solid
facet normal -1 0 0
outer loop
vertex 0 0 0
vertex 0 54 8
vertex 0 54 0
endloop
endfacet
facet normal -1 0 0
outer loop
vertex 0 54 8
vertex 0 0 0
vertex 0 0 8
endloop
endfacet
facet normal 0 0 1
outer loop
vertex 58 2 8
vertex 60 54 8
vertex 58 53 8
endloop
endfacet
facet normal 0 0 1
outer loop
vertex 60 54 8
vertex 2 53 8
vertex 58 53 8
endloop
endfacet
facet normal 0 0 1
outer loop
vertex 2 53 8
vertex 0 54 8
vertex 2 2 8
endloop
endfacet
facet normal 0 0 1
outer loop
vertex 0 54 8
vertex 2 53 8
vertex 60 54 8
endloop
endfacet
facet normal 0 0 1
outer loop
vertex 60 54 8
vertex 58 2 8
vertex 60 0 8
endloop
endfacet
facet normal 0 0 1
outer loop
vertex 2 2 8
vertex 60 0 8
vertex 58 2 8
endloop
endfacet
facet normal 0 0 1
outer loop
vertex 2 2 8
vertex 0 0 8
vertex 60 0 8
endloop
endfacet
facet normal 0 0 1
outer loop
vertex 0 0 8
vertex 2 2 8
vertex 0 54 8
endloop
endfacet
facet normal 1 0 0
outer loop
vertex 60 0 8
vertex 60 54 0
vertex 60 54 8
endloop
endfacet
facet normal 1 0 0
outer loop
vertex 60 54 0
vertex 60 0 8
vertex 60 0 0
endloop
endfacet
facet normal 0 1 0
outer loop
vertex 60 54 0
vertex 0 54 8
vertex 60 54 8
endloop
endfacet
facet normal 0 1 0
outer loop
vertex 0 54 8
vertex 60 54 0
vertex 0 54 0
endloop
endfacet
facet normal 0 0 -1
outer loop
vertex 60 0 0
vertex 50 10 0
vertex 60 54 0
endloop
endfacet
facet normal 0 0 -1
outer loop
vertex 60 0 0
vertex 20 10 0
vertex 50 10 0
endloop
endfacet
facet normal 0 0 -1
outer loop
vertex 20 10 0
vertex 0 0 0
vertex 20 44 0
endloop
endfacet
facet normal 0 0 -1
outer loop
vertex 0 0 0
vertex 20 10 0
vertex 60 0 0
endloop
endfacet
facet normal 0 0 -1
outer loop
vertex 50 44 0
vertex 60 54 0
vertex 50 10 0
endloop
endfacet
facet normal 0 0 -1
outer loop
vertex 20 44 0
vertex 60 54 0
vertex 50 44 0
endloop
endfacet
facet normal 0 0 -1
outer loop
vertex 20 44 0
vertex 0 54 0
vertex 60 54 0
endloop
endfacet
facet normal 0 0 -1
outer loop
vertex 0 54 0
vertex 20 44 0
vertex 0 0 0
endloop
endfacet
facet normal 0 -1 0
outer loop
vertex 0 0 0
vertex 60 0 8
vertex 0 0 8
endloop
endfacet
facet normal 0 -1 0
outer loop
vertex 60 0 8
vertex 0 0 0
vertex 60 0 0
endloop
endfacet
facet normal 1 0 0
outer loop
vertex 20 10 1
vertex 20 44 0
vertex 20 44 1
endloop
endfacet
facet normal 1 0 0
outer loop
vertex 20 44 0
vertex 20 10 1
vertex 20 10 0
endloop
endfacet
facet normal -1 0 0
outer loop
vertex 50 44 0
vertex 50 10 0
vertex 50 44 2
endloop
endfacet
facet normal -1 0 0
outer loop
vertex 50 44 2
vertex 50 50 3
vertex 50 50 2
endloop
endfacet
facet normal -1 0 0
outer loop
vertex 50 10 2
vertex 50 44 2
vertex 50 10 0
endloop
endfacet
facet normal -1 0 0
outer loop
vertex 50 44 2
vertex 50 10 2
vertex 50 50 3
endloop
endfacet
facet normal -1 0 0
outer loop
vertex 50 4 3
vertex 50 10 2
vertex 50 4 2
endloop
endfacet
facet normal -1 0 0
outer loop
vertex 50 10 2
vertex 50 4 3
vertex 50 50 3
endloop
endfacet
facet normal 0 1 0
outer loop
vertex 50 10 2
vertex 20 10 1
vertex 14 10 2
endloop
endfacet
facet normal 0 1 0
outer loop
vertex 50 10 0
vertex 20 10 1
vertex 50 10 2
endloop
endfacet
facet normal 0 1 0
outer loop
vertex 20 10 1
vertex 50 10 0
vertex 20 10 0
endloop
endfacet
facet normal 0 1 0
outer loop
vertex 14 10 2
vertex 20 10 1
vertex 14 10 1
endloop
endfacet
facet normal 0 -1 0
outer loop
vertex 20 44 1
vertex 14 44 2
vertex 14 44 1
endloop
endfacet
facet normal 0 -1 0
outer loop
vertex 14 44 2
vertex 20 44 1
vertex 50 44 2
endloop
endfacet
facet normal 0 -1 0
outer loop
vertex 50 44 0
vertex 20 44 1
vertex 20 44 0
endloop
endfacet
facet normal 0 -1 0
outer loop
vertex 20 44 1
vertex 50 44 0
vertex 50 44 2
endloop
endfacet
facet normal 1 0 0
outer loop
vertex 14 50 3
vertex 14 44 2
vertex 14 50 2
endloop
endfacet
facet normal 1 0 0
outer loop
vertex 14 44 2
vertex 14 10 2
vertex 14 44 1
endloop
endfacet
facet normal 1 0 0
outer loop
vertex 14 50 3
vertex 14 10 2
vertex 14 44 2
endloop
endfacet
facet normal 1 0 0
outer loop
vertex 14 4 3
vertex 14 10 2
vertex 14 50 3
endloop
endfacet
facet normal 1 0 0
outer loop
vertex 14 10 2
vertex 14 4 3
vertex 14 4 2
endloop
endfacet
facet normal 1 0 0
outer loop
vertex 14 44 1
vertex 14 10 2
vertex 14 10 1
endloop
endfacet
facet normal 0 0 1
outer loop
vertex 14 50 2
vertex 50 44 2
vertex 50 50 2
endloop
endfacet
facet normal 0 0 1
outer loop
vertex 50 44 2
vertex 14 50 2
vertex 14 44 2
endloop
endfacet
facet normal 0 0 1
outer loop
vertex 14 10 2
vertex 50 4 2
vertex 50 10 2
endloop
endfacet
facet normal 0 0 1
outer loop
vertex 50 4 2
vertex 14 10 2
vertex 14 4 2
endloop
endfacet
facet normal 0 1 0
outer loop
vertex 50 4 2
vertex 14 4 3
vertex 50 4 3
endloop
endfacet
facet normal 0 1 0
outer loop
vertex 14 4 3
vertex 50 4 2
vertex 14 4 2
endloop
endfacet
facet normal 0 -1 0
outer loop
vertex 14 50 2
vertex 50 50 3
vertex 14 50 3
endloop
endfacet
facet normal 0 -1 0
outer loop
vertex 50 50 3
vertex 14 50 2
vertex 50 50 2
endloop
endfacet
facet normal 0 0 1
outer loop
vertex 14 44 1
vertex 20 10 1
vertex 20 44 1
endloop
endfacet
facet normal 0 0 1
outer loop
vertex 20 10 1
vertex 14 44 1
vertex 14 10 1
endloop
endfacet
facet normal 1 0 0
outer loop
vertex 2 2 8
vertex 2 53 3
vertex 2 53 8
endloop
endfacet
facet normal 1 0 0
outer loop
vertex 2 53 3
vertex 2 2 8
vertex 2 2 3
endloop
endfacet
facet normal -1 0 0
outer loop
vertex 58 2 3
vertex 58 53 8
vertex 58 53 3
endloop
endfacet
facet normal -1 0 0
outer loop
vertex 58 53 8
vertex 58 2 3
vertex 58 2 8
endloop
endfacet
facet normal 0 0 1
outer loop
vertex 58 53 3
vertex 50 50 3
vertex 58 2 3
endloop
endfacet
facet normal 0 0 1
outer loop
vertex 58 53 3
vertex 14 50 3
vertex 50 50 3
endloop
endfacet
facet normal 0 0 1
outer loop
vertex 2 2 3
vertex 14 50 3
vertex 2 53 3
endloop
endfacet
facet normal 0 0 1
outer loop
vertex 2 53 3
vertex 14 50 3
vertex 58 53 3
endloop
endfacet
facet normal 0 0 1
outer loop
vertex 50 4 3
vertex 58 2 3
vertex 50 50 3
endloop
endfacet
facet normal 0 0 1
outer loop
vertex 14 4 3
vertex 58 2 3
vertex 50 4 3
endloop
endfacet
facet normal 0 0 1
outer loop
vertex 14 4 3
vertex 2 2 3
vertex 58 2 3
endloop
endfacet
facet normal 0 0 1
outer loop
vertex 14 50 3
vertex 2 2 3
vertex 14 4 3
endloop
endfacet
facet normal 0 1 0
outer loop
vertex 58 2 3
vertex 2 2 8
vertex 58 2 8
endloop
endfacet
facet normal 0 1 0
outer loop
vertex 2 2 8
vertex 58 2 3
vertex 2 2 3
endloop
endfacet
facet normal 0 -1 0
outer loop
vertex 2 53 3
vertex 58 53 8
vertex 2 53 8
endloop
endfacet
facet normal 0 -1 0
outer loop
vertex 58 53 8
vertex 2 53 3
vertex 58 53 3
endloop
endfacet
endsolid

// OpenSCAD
difference(){
    cube([60,54,8]);
        translate([20,10,0]){
            cube([30,34,3]);
        }
        translate([14,4,2]){
            cube([36,46,2]);
        }
        translate([14,10,1]){
            cube([6,34,1]);
        }
        translate([2,2,3]){
            cube([56,51,13]);
        }
    
        
}
